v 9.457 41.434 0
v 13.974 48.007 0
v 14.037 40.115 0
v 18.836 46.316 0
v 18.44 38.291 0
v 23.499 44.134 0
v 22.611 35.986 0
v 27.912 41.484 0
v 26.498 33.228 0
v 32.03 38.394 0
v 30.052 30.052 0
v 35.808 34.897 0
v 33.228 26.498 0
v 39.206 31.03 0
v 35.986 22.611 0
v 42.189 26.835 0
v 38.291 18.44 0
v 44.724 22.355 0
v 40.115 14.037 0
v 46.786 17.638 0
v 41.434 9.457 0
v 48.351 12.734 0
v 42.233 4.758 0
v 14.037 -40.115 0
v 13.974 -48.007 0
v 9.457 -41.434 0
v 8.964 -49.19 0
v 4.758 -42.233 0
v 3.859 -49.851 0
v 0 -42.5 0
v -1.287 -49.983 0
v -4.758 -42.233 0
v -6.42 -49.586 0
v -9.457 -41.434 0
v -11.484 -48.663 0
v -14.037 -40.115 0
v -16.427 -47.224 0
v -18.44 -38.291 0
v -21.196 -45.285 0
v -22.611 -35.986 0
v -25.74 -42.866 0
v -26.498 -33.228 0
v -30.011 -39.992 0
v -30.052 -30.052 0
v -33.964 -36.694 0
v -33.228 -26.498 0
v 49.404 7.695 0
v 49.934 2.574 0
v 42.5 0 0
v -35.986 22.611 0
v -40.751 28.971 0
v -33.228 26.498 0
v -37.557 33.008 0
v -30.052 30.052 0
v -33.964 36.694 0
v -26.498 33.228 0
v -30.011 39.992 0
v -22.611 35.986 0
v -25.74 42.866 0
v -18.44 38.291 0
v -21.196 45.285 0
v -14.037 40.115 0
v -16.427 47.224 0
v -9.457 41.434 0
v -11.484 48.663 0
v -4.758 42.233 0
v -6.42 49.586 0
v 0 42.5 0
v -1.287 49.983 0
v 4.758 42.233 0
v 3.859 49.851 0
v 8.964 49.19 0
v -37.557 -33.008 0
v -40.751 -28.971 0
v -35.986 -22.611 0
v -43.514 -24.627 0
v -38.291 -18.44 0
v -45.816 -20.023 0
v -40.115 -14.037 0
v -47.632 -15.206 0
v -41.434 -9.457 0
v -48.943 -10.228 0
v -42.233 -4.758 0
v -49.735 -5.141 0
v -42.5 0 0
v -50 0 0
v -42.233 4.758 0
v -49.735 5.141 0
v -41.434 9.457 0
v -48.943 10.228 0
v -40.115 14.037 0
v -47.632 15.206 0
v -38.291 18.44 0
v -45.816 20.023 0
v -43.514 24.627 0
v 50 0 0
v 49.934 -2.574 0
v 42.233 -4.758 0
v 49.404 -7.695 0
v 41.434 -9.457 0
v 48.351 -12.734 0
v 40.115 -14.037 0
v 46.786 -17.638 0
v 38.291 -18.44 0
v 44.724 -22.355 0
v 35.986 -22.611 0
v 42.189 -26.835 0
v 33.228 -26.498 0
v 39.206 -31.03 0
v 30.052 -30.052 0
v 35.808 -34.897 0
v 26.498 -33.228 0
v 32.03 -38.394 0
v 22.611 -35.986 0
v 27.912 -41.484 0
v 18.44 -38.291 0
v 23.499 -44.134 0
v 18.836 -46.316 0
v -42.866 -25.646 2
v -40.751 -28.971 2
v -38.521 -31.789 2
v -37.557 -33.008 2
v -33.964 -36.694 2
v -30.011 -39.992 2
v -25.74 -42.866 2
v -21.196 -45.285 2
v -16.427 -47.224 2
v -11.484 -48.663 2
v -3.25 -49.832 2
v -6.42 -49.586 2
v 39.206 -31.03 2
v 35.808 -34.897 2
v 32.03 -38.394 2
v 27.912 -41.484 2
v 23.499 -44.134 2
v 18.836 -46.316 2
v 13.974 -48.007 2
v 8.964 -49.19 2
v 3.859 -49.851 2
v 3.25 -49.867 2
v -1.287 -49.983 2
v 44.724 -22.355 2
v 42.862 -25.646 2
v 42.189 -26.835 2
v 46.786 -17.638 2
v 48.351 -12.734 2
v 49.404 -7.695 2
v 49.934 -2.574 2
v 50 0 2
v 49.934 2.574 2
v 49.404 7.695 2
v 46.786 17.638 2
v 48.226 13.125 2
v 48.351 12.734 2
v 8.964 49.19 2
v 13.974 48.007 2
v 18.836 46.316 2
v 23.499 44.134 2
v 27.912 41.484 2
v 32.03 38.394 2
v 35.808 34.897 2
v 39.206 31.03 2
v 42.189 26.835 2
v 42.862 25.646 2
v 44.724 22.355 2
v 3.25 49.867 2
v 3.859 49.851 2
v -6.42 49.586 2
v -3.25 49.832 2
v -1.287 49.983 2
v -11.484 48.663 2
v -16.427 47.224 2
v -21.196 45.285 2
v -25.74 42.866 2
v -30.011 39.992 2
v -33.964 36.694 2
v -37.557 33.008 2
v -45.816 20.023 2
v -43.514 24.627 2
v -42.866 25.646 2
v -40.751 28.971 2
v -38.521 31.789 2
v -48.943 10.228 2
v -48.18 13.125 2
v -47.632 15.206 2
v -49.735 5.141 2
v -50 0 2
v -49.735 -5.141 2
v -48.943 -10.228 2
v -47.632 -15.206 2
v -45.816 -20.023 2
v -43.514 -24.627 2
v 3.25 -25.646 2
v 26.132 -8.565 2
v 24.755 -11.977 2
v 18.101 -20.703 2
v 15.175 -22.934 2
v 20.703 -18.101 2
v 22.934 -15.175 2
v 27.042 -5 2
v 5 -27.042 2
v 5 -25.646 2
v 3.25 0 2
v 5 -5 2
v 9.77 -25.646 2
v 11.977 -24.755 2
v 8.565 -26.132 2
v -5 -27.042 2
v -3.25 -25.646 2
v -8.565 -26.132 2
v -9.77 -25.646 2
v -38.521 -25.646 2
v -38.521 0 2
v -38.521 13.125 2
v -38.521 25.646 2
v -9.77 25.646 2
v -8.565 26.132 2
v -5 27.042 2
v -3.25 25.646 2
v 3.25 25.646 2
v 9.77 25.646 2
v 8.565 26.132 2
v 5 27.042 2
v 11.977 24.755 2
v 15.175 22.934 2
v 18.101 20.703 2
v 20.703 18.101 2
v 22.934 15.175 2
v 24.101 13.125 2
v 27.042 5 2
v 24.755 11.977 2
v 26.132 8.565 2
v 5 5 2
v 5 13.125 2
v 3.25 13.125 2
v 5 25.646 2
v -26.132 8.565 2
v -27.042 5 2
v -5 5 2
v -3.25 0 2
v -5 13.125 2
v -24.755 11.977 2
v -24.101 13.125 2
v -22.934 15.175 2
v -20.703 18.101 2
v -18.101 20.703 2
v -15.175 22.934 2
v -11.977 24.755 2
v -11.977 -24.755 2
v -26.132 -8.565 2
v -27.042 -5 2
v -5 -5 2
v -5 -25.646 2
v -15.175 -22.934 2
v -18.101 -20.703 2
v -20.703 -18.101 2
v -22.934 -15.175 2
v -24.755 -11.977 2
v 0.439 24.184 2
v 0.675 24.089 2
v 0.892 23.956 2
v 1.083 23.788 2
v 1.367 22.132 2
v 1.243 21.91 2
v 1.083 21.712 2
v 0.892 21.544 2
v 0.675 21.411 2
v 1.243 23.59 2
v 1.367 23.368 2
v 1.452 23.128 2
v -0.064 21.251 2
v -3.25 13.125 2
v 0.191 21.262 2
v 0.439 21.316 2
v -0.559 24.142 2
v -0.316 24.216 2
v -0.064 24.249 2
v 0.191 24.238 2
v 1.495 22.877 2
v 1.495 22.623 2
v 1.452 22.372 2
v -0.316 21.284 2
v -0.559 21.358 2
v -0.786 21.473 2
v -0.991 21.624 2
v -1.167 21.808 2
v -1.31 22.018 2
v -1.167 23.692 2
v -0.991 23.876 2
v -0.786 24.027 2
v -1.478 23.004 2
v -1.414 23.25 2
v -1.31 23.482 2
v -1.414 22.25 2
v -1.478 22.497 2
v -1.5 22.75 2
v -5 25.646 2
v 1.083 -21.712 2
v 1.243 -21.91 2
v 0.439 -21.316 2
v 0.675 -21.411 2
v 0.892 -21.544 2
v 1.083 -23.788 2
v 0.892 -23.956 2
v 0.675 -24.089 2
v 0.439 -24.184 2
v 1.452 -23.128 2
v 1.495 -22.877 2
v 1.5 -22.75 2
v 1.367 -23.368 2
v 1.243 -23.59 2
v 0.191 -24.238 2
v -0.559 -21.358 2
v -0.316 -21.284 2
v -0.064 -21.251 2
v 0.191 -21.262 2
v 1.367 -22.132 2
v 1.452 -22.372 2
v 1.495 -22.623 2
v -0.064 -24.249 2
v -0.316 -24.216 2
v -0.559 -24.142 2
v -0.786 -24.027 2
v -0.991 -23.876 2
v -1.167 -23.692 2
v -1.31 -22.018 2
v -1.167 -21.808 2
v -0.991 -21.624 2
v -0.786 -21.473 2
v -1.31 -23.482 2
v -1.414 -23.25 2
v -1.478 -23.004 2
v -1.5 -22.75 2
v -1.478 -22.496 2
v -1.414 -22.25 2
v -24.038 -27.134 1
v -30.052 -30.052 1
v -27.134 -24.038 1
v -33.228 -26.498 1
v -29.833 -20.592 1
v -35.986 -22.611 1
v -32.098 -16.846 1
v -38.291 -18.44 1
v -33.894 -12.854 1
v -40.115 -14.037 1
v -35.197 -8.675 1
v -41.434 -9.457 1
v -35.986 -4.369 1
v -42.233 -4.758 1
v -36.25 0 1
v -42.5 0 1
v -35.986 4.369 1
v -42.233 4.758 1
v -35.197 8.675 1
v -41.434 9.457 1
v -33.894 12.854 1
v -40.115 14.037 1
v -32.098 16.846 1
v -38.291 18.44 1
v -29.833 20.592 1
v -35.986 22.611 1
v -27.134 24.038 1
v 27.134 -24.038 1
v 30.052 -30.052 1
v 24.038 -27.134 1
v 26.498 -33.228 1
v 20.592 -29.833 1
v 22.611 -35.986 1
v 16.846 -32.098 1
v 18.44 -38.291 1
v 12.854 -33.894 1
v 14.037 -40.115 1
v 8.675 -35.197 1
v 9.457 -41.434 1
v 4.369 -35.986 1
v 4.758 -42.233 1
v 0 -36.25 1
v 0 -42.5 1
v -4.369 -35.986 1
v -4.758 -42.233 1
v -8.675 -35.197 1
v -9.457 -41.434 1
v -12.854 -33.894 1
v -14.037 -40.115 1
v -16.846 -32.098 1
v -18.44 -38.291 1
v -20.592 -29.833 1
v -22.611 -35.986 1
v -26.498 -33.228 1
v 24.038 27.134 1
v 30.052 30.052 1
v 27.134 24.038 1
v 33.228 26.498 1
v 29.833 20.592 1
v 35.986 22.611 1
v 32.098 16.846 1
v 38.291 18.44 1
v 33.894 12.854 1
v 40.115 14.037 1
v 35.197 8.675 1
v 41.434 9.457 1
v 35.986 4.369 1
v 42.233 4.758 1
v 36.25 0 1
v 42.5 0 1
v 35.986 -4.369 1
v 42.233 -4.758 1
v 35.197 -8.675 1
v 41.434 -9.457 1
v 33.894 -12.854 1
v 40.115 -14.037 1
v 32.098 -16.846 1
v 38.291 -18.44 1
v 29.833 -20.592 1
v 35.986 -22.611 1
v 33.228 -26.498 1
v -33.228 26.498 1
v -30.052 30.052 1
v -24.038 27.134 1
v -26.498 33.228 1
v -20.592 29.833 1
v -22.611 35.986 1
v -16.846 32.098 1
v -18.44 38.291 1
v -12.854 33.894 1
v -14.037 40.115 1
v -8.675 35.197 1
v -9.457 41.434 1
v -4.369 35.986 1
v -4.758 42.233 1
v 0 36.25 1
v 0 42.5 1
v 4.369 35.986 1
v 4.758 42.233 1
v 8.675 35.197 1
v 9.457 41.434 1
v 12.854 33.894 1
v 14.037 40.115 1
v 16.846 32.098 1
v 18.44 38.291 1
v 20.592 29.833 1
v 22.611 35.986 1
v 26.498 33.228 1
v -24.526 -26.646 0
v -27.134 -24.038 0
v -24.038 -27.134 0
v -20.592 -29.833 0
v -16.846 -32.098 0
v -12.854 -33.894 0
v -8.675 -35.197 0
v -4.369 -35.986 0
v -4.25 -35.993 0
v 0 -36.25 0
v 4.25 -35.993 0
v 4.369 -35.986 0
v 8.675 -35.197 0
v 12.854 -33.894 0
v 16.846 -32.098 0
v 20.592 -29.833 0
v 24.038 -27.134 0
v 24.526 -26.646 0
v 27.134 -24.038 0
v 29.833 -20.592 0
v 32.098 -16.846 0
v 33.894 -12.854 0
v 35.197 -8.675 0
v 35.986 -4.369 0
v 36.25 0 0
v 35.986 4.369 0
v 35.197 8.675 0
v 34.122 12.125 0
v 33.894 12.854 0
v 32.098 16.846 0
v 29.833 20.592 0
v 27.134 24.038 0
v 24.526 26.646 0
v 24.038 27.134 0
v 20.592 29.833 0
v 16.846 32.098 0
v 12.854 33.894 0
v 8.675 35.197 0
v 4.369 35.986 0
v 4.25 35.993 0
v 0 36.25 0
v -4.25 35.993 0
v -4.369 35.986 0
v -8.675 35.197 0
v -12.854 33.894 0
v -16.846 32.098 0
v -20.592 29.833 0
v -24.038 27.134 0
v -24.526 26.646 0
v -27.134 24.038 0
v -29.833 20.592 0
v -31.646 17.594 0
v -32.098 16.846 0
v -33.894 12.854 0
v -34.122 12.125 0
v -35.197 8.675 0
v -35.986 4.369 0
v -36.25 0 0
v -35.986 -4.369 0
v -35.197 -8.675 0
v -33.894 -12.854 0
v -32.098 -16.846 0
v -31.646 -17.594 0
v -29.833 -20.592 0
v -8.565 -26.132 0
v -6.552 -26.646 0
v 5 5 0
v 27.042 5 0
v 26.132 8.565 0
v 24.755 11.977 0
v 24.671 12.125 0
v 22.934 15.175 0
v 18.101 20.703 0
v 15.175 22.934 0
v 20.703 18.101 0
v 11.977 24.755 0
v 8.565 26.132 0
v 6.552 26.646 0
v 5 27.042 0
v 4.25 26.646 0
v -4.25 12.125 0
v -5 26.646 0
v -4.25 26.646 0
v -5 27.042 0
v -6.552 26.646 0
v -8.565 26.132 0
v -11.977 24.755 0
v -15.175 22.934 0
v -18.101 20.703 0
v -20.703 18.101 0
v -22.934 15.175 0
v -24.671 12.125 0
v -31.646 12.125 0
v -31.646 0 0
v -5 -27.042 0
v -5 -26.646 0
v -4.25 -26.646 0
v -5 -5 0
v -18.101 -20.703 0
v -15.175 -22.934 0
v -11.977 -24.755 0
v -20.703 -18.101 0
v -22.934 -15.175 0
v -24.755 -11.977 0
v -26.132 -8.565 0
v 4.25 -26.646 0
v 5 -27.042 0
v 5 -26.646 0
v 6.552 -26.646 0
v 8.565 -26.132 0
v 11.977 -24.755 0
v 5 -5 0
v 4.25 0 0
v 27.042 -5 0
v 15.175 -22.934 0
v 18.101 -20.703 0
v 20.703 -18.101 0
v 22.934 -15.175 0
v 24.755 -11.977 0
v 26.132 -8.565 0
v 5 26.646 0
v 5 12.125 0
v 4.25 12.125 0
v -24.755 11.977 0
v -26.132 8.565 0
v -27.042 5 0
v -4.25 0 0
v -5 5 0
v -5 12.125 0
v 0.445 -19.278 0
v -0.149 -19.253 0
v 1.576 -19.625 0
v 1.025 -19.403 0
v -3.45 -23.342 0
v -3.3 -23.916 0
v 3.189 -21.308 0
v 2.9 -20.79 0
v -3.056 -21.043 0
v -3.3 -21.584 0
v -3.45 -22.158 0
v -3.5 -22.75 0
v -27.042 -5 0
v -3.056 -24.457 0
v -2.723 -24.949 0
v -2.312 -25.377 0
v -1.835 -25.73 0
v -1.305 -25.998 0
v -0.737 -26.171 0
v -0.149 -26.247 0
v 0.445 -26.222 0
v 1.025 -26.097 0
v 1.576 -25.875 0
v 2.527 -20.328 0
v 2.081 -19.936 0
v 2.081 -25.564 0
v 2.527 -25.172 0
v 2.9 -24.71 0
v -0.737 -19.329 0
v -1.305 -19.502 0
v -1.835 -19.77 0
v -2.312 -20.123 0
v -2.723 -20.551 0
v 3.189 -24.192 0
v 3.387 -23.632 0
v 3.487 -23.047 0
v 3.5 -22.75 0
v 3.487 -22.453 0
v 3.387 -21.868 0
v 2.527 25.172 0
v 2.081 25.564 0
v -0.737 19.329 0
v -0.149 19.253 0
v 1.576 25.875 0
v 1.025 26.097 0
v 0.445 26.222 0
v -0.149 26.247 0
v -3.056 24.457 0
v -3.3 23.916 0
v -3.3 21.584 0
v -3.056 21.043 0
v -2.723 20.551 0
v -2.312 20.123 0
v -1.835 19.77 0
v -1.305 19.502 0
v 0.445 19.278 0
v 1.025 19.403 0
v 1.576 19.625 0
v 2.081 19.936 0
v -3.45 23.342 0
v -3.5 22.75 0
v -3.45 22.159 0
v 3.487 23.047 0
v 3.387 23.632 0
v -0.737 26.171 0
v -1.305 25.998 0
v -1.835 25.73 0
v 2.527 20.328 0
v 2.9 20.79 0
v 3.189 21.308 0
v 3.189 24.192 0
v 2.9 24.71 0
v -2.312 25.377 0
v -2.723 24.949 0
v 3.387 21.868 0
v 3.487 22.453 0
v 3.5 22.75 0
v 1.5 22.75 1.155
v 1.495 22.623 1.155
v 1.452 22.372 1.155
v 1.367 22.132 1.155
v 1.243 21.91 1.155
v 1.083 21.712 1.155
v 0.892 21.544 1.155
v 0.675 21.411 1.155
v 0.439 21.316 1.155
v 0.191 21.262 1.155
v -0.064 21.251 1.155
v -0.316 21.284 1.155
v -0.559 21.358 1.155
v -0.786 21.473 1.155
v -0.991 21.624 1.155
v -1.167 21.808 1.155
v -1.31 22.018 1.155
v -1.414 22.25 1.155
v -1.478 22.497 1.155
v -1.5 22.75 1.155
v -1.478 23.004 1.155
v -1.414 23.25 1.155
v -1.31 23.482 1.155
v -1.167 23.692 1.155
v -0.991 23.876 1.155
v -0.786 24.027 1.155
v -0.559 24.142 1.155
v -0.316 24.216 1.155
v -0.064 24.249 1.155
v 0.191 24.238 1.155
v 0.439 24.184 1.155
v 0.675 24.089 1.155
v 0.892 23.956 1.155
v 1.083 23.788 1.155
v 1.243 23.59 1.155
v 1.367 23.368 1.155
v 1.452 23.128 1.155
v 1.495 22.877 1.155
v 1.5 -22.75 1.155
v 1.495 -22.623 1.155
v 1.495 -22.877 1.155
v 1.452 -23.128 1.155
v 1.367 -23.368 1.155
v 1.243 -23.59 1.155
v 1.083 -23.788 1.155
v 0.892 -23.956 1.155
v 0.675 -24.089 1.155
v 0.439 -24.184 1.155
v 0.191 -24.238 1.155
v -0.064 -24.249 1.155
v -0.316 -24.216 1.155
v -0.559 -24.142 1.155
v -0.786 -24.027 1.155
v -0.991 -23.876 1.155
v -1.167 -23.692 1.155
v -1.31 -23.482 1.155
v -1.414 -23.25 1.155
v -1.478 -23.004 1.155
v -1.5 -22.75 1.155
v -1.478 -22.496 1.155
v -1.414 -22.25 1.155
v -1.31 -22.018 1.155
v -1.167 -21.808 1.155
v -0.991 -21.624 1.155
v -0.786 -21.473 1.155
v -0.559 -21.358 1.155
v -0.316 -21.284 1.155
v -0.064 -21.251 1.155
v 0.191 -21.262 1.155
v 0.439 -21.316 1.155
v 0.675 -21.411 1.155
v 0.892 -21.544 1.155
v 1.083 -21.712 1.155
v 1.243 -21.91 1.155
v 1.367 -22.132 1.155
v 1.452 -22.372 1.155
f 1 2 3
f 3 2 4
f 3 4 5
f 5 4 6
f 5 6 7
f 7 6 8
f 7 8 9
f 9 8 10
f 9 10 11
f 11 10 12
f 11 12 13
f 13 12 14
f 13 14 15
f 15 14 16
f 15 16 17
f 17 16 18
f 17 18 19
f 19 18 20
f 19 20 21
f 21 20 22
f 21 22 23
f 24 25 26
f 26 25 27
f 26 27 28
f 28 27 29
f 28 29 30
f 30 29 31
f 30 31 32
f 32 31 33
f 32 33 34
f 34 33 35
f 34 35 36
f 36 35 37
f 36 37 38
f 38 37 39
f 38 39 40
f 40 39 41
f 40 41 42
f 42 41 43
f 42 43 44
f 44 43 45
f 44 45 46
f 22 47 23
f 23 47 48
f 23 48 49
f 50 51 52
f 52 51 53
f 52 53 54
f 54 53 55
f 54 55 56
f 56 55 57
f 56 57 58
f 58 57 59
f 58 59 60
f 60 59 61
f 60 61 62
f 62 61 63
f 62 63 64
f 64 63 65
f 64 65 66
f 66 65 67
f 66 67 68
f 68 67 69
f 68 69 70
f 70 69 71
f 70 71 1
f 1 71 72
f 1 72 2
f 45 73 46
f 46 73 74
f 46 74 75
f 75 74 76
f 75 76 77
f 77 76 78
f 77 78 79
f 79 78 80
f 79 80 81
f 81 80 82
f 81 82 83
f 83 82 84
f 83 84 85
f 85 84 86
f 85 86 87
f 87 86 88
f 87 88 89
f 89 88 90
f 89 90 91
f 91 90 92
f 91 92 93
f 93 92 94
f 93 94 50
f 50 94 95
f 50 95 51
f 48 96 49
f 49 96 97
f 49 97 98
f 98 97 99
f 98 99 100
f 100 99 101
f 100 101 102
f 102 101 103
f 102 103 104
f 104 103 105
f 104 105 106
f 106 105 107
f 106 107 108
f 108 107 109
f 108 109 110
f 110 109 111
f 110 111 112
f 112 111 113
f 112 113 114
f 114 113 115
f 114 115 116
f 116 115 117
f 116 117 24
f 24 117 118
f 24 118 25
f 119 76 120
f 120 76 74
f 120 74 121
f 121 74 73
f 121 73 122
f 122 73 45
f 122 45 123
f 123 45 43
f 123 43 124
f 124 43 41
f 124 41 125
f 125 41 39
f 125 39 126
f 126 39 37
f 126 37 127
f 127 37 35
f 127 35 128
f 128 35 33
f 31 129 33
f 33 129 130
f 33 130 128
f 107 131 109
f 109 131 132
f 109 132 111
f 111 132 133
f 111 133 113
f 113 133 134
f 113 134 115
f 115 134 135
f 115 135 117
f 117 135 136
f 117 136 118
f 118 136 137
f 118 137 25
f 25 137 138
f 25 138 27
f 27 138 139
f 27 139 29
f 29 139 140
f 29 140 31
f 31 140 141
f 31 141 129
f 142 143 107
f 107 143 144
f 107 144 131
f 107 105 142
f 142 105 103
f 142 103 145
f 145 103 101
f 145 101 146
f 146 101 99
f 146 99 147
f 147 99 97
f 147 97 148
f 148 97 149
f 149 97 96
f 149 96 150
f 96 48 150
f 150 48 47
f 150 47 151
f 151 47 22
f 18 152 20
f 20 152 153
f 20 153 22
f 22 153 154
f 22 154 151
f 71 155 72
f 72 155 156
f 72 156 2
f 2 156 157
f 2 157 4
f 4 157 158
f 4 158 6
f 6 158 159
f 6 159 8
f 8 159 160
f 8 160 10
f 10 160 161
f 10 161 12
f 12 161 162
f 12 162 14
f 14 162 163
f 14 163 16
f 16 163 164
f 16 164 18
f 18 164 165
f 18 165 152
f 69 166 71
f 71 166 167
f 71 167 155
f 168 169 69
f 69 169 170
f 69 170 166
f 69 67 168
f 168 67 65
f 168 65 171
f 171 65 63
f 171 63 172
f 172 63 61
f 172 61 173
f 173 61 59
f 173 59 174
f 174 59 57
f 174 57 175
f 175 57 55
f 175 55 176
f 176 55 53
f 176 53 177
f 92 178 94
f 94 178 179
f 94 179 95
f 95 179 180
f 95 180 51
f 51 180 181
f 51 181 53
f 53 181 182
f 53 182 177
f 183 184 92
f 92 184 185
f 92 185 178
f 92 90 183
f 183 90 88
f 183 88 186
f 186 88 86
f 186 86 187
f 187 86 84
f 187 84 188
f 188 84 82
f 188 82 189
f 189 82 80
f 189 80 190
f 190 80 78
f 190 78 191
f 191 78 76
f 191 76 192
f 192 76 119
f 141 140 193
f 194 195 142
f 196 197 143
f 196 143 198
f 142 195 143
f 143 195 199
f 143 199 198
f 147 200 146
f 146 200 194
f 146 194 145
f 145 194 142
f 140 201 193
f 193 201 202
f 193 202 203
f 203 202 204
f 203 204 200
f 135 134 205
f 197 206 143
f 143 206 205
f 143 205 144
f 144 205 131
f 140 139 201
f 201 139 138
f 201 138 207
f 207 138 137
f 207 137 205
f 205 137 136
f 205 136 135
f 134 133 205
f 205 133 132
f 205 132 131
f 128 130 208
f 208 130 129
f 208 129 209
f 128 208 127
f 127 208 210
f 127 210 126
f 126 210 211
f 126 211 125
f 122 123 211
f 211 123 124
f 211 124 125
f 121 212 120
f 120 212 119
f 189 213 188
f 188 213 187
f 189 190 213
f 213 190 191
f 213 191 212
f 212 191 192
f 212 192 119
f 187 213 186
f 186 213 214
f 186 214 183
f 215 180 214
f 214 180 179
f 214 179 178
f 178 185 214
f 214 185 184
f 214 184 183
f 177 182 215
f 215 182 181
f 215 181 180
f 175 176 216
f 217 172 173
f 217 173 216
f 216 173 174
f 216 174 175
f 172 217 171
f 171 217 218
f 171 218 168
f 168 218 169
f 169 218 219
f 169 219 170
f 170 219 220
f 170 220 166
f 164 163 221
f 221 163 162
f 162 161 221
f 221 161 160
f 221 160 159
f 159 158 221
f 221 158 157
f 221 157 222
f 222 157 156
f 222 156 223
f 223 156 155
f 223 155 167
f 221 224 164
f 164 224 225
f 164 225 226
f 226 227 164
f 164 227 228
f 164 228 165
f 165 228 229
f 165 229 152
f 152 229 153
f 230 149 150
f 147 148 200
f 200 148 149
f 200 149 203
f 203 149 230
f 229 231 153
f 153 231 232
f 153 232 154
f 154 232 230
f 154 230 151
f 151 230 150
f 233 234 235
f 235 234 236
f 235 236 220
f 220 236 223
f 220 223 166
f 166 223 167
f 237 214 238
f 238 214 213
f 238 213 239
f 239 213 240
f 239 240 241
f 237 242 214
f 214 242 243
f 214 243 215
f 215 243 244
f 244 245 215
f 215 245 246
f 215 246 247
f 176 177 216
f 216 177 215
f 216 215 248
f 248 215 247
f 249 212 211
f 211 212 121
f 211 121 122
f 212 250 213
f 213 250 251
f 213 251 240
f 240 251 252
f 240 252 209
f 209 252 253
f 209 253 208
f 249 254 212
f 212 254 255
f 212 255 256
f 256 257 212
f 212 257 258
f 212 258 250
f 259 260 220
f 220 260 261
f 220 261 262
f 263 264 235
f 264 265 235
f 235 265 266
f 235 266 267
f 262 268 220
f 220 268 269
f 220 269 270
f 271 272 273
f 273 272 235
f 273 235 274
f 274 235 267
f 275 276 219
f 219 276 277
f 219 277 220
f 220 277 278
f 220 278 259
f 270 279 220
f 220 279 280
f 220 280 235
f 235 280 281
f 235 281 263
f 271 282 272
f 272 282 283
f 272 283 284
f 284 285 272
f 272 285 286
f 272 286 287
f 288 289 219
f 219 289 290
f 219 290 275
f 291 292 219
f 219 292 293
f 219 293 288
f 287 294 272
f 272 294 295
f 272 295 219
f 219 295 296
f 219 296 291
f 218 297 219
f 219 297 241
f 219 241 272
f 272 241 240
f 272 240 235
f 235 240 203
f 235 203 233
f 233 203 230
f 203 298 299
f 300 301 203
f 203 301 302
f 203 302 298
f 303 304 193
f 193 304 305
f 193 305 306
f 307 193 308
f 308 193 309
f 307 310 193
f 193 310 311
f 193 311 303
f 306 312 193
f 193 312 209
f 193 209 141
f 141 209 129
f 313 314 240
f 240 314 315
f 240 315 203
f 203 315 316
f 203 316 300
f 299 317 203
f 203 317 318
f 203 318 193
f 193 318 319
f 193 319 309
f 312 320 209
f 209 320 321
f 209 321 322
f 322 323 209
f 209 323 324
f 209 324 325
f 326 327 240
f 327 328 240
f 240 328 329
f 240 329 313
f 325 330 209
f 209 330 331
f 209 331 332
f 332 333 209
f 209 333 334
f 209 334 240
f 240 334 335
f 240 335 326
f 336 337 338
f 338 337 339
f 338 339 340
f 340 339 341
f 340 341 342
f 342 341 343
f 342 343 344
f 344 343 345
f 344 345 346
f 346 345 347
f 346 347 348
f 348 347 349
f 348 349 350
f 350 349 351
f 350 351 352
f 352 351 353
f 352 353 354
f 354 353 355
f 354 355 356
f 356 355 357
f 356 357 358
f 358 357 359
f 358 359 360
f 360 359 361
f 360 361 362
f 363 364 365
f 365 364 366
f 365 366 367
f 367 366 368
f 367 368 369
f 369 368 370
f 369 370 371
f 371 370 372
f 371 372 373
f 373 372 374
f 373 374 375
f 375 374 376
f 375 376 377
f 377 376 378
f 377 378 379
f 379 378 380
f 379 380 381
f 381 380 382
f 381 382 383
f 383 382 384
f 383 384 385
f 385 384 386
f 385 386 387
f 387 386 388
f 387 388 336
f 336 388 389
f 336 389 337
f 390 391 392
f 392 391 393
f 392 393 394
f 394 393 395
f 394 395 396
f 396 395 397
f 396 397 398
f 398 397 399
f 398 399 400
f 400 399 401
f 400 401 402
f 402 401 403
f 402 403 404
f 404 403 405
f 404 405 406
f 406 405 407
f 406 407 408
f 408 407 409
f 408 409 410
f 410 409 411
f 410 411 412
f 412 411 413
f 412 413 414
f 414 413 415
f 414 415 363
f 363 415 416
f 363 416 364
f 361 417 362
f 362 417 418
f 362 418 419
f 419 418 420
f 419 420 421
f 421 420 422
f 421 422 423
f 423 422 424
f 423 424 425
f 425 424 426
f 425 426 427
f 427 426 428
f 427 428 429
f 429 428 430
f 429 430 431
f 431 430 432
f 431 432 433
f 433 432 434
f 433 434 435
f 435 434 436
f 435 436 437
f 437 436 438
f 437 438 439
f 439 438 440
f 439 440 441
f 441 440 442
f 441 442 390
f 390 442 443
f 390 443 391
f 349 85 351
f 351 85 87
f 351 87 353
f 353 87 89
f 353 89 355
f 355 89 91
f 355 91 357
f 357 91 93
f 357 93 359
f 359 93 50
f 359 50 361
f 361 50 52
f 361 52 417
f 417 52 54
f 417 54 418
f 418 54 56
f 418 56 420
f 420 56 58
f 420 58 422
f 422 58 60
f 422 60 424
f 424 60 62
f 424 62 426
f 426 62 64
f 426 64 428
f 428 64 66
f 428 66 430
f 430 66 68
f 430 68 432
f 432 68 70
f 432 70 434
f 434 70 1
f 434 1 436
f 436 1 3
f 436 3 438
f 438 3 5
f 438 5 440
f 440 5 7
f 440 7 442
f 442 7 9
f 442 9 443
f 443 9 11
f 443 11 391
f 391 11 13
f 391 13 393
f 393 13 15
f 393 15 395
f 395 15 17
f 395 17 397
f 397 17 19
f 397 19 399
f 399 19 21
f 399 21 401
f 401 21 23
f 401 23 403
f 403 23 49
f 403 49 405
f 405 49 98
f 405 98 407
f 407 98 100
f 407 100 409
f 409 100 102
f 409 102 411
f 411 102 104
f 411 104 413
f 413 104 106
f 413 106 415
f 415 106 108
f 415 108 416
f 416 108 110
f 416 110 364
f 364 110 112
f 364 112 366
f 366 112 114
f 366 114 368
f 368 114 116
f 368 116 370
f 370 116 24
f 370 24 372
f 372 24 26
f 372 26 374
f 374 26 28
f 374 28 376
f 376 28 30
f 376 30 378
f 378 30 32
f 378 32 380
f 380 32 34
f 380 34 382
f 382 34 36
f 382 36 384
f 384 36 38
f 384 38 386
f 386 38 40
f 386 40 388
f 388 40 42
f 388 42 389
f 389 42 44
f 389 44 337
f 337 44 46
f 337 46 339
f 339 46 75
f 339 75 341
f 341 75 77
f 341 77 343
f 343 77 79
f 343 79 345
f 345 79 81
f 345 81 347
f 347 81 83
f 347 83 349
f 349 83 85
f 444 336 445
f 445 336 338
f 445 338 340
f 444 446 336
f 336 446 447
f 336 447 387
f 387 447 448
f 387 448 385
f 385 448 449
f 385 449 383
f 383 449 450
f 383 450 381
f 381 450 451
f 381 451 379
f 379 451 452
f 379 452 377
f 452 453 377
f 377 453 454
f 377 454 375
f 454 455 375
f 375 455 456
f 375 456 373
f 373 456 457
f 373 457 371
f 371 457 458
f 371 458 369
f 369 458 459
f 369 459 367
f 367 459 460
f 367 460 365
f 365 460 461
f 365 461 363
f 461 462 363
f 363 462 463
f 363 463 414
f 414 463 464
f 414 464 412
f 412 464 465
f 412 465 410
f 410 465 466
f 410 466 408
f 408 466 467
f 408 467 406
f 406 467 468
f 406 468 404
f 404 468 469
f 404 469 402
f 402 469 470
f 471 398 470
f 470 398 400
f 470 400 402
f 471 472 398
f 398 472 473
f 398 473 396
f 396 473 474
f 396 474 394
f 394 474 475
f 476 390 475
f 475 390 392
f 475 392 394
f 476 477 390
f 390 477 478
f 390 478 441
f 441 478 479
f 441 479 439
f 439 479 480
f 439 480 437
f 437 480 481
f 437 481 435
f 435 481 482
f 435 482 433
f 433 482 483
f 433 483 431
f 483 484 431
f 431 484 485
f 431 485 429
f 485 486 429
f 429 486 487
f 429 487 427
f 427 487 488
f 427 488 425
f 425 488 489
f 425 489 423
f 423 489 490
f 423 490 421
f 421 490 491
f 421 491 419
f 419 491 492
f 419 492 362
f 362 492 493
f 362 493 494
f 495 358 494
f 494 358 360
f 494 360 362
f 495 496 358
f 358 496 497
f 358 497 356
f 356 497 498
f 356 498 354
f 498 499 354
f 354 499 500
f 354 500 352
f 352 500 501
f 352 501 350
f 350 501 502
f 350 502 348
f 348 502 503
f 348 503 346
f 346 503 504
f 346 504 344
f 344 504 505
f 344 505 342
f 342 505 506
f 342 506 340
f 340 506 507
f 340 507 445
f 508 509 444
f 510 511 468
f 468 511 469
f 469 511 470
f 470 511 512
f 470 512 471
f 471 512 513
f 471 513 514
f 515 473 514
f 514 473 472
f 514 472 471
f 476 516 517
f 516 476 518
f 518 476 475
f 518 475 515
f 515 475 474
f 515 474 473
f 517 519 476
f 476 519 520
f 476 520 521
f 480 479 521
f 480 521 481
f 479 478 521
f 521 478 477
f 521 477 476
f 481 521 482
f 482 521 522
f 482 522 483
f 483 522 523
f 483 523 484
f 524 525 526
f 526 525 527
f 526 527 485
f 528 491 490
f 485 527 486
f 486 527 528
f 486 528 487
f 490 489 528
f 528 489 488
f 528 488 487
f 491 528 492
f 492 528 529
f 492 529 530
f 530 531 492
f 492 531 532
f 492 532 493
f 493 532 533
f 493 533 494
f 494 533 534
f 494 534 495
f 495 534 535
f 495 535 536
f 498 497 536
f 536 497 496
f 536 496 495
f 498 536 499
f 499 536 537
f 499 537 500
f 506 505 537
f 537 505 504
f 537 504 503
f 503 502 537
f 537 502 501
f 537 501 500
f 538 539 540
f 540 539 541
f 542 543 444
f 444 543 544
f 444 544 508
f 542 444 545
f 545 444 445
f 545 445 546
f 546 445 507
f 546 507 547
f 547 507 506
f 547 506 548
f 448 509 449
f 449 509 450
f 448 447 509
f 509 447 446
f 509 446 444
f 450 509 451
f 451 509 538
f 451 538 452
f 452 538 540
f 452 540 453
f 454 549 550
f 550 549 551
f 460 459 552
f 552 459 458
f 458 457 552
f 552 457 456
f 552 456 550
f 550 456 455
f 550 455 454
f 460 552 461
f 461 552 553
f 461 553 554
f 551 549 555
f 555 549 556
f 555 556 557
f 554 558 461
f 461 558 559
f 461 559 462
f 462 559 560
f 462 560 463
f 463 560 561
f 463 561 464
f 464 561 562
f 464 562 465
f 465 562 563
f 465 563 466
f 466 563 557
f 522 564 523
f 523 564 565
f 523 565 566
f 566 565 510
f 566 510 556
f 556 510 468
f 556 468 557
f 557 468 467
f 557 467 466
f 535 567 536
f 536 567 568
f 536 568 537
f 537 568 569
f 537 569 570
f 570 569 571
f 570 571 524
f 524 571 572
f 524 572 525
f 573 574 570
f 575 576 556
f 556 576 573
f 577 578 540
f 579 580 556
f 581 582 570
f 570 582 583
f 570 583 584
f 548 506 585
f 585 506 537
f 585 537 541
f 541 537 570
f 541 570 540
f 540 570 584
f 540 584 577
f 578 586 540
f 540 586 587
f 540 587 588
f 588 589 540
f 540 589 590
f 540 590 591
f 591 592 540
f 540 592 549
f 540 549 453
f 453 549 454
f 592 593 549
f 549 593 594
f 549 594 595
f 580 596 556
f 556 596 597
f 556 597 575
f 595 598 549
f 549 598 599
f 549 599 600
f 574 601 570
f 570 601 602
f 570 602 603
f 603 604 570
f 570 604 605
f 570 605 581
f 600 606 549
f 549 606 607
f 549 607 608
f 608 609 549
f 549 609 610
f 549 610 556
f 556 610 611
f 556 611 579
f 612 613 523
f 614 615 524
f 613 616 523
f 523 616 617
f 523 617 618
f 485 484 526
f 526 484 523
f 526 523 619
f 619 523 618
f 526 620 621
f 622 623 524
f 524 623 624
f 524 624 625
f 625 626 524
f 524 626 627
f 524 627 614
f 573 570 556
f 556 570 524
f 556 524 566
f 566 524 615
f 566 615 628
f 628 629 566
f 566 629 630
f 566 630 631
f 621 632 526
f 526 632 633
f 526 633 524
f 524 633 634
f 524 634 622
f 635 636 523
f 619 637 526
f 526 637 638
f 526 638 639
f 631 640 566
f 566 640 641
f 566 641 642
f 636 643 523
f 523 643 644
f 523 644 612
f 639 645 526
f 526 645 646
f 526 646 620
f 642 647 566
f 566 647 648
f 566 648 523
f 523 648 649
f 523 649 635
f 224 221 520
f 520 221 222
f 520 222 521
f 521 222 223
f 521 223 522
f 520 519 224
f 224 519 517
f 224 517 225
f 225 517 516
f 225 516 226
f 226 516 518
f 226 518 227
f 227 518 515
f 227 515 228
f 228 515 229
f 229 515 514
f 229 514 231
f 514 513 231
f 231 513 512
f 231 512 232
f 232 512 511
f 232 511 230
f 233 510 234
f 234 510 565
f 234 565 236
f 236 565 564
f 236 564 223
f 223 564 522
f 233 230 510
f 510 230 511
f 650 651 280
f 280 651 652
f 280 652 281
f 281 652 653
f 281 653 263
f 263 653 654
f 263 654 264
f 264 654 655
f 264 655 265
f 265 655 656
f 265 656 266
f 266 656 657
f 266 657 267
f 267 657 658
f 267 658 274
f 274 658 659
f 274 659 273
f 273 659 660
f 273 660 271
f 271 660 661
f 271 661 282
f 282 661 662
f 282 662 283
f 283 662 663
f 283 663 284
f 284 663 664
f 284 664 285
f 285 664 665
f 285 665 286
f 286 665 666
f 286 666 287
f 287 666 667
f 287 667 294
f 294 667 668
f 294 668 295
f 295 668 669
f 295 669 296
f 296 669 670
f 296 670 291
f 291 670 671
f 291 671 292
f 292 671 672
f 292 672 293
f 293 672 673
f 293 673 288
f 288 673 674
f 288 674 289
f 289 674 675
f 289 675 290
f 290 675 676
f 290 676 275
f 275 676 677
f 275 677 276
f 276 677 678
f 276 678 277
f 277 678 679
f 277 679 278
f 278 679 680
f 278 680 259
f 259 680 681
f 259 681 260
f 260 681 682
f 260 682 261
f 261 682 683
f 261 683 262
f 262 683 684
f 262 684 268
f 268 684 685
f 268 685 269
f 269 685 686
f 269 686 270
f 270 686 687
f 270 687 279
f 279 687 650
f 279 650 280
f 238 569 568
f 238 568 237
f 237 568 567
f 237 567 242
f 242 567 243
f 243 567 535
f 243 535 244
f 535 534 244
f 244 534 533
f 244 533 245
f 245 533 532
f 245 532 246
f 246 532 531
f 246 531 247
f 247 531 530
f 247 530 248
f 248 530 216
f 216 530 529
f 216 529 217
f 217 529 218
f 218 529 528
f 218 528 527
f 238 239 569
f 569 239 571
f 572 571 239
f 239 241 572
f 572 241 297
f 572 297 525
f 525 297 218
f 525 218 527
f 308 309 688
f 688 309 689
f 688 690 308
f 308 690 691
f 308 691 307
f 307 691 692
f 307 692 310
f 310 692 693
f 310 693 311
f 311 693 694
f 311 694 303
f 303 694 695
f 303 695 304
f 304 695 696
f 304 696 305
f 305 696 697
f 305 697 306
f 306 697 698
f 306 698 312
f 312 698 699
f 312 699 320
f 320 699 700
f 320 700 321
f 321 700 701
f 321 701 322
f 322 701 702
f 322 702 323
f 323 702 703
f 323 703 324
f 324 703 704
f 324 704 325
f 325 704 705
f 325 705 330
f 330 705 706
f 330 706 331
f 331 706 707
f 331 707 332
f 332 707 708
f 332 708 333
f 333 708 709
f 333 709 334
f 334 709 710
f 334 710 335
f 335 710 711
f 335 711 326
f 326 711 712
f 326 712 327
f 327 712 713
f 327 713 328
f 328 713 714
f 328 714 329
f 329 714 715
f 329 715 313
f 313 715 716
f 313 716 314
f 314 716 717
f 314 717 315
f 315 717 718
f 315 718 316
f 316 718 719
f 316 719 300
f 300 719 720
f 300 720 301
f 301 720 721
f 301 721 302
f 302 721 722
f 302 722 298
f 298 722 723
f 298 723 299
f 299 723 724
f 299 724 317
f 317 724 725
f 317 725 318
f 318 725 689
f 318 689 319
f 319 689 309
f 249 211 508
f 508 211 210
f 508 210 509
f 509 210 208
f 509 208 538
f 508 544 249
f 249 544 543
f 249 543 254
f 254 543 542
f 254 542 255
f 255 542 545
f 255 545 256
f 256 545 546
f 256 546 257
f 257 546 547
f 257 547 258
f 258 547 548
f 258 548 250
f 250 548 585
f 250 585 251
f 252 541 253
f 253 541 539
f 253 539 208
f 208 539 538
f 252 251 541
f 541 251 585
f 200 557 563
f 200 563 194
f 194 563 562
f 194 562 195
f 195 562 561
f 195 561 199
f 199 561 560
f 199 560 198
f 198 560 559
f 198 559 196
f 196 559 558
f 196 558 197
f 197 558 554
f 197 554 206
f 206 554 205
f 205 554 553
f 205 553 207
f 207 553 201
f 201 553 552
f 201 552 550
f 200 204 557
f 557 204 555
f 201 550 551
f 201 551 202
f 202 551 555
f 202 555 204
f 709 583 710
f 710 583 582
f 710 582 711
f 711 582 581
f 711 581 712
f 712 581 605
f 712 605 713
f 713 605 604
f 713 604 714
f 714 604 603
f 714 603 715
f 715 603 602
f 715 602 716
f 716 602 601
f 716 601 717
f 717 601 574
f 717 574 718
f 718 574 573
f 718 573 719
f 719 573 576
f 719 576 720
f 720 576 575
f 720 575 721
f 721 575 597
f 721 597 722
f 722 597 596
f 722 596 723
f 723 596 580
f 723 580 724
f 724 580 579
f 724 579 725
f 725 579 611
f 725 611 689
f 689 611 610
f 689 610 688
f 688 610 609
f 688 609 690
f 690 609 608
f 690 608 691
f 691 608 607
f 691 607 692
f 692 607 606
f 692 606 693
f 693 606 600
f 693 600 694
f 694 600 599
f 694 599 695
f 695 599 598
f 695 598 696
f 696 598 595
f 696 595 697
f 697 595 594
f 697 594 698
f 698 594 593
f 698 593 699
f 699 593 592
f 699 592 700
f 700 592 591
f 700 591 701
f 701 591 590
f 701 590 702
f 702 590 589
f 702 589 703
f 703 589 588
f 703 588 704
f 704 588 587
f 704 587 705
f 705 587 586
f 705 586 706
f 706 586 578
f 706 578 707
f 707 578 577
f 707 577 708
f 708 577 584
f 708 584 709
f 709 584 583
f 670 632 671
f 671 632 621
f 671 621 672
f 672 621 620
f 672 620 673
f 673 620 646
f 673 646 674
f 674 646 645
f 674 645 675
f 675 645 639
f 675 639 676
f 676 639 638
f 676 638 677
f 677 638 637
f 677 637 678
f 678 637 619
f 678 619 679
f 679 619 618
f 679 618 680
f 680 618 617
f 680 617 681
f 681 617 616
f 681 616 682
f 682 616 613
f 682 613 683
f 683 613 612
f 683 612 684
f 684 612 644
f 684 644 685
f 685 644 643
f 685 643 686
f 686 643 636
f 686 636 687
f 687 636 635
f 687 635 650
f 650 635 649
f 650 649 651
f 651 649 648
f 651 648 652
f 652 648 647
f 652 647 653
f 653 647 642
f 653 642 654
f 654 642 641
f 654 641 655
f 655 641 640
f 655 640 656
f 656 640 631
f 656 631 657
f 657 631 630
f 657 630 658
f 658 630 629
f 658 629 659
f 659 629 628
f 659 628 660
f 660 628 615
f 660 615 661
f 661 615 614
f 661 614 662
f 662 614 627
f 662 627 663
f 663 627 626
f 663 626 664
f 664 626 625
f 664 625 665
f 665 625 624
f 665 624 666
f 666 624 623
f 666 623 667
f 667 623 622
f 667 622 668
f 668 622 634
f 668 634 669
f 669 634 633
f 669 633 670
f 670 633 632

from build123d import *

# Parameters (mm, degrees)
SKETCH1_R           = 50
BOSS_EXTRUDE1_DEPTH = 2
SKETCH2_R           = 42.5
SKETCH2_R_2         = 36.25
CUT_EXTRUDE1_DEPTH  = 1
SKETCH3_R           = 1.5
CUT_EXTRUDE2_DEPTH  = 71.738956735
CHAMFER1_SIZE       = 2
CHAMFER1_SIZE2      = 1.154700538


with BuildPart() as part:
    # Sketch1 → Boss-Extrude1 (new body)
    with BuildSketch(Plane.XY):
        Circle(SKETCH1_R)
    extrude(amount=BOSS_EXTRUDE1_DEPTH)

    # Sketch2 → Cut-Extrude1 (cut)
    with BuildSketch(Plane.XY):
        Circle(SKETCH2_R)
        Circle(SKETCH2_R_2, mode=Mode.SUBTRACT)
    extrude(amount=CUT_EXTRUDE1_DEPTH, mode=Mode.SUBTRACT)

    # Sketch3 → Cut-Extrude2 (cut, through all)
    with BuildSketch(Plane(origin=(0, 0, 0), x_dir=(-1, 0, 0), z_dir=(0, 0, -1))):
        with Locations((0, 22.75)):
            Circle(SKETCH3_R)
        with Locations(Location((0, -22.75, 0), (0, 0, 180))):
            Circle(SKETCH3_R)
        with BuildLine():
            Line((-5, 27.041634566), (-5, 5))
            Line((-5, 5), (-27.041634566, 5))
            ThreePointArc((-27.041634566, 5), (-19.445436483, 19.445436483), (-5, 27.041634566))
        make_face()
        with BuildLine():
            Line((5, 27.041634566), (5, 5))
            Line((5, 5), (27.041634566, 5))
            ThreePointArc((27.041634566, 5), (19.445436483, 19.445436483), (5, 27.041634566))
        make_face()
        with BuildLine():
            Line((27.041634566, -5), (5, -5))
            Line((5, -5), (5, -27.041634566))
            ThreePointArc((5, -27.041634566), (19.445436483, -19.445436483), (27.041634566, -5))
        make_face()
        with BuildLine():
            Line((-5, -27.041634566), (-5, -5))
            Line((-5, -5), (-27.041634566, -5))
            ThreePointArc((-27.041634566, -5), (-19.445436483, -19.445436483), (-5, -27.041634566))
        make_face()
    extrude(amount=-CUT_EXTRUDE2_DEPTH, mode=Mode.SUBTRACT)

    # Chamfer1
    chamfer1_edges = [part.edges().sort_by_distance(p)[0] for p in [
        (1.5, 22.75, 0),
        (-1.5, -22.75, 0),
    ]]
    chamfer1_side = [part.faces().sort_by_distance(p)[0] for p in [
        (0, 0, 0),
    ]]
    chamfer(chamfer1_edges, length=CHAMFER1_SIZE, length2=CHAMFER1_SIZE2, reference=chamfer1_side[0])


solid = part.part
